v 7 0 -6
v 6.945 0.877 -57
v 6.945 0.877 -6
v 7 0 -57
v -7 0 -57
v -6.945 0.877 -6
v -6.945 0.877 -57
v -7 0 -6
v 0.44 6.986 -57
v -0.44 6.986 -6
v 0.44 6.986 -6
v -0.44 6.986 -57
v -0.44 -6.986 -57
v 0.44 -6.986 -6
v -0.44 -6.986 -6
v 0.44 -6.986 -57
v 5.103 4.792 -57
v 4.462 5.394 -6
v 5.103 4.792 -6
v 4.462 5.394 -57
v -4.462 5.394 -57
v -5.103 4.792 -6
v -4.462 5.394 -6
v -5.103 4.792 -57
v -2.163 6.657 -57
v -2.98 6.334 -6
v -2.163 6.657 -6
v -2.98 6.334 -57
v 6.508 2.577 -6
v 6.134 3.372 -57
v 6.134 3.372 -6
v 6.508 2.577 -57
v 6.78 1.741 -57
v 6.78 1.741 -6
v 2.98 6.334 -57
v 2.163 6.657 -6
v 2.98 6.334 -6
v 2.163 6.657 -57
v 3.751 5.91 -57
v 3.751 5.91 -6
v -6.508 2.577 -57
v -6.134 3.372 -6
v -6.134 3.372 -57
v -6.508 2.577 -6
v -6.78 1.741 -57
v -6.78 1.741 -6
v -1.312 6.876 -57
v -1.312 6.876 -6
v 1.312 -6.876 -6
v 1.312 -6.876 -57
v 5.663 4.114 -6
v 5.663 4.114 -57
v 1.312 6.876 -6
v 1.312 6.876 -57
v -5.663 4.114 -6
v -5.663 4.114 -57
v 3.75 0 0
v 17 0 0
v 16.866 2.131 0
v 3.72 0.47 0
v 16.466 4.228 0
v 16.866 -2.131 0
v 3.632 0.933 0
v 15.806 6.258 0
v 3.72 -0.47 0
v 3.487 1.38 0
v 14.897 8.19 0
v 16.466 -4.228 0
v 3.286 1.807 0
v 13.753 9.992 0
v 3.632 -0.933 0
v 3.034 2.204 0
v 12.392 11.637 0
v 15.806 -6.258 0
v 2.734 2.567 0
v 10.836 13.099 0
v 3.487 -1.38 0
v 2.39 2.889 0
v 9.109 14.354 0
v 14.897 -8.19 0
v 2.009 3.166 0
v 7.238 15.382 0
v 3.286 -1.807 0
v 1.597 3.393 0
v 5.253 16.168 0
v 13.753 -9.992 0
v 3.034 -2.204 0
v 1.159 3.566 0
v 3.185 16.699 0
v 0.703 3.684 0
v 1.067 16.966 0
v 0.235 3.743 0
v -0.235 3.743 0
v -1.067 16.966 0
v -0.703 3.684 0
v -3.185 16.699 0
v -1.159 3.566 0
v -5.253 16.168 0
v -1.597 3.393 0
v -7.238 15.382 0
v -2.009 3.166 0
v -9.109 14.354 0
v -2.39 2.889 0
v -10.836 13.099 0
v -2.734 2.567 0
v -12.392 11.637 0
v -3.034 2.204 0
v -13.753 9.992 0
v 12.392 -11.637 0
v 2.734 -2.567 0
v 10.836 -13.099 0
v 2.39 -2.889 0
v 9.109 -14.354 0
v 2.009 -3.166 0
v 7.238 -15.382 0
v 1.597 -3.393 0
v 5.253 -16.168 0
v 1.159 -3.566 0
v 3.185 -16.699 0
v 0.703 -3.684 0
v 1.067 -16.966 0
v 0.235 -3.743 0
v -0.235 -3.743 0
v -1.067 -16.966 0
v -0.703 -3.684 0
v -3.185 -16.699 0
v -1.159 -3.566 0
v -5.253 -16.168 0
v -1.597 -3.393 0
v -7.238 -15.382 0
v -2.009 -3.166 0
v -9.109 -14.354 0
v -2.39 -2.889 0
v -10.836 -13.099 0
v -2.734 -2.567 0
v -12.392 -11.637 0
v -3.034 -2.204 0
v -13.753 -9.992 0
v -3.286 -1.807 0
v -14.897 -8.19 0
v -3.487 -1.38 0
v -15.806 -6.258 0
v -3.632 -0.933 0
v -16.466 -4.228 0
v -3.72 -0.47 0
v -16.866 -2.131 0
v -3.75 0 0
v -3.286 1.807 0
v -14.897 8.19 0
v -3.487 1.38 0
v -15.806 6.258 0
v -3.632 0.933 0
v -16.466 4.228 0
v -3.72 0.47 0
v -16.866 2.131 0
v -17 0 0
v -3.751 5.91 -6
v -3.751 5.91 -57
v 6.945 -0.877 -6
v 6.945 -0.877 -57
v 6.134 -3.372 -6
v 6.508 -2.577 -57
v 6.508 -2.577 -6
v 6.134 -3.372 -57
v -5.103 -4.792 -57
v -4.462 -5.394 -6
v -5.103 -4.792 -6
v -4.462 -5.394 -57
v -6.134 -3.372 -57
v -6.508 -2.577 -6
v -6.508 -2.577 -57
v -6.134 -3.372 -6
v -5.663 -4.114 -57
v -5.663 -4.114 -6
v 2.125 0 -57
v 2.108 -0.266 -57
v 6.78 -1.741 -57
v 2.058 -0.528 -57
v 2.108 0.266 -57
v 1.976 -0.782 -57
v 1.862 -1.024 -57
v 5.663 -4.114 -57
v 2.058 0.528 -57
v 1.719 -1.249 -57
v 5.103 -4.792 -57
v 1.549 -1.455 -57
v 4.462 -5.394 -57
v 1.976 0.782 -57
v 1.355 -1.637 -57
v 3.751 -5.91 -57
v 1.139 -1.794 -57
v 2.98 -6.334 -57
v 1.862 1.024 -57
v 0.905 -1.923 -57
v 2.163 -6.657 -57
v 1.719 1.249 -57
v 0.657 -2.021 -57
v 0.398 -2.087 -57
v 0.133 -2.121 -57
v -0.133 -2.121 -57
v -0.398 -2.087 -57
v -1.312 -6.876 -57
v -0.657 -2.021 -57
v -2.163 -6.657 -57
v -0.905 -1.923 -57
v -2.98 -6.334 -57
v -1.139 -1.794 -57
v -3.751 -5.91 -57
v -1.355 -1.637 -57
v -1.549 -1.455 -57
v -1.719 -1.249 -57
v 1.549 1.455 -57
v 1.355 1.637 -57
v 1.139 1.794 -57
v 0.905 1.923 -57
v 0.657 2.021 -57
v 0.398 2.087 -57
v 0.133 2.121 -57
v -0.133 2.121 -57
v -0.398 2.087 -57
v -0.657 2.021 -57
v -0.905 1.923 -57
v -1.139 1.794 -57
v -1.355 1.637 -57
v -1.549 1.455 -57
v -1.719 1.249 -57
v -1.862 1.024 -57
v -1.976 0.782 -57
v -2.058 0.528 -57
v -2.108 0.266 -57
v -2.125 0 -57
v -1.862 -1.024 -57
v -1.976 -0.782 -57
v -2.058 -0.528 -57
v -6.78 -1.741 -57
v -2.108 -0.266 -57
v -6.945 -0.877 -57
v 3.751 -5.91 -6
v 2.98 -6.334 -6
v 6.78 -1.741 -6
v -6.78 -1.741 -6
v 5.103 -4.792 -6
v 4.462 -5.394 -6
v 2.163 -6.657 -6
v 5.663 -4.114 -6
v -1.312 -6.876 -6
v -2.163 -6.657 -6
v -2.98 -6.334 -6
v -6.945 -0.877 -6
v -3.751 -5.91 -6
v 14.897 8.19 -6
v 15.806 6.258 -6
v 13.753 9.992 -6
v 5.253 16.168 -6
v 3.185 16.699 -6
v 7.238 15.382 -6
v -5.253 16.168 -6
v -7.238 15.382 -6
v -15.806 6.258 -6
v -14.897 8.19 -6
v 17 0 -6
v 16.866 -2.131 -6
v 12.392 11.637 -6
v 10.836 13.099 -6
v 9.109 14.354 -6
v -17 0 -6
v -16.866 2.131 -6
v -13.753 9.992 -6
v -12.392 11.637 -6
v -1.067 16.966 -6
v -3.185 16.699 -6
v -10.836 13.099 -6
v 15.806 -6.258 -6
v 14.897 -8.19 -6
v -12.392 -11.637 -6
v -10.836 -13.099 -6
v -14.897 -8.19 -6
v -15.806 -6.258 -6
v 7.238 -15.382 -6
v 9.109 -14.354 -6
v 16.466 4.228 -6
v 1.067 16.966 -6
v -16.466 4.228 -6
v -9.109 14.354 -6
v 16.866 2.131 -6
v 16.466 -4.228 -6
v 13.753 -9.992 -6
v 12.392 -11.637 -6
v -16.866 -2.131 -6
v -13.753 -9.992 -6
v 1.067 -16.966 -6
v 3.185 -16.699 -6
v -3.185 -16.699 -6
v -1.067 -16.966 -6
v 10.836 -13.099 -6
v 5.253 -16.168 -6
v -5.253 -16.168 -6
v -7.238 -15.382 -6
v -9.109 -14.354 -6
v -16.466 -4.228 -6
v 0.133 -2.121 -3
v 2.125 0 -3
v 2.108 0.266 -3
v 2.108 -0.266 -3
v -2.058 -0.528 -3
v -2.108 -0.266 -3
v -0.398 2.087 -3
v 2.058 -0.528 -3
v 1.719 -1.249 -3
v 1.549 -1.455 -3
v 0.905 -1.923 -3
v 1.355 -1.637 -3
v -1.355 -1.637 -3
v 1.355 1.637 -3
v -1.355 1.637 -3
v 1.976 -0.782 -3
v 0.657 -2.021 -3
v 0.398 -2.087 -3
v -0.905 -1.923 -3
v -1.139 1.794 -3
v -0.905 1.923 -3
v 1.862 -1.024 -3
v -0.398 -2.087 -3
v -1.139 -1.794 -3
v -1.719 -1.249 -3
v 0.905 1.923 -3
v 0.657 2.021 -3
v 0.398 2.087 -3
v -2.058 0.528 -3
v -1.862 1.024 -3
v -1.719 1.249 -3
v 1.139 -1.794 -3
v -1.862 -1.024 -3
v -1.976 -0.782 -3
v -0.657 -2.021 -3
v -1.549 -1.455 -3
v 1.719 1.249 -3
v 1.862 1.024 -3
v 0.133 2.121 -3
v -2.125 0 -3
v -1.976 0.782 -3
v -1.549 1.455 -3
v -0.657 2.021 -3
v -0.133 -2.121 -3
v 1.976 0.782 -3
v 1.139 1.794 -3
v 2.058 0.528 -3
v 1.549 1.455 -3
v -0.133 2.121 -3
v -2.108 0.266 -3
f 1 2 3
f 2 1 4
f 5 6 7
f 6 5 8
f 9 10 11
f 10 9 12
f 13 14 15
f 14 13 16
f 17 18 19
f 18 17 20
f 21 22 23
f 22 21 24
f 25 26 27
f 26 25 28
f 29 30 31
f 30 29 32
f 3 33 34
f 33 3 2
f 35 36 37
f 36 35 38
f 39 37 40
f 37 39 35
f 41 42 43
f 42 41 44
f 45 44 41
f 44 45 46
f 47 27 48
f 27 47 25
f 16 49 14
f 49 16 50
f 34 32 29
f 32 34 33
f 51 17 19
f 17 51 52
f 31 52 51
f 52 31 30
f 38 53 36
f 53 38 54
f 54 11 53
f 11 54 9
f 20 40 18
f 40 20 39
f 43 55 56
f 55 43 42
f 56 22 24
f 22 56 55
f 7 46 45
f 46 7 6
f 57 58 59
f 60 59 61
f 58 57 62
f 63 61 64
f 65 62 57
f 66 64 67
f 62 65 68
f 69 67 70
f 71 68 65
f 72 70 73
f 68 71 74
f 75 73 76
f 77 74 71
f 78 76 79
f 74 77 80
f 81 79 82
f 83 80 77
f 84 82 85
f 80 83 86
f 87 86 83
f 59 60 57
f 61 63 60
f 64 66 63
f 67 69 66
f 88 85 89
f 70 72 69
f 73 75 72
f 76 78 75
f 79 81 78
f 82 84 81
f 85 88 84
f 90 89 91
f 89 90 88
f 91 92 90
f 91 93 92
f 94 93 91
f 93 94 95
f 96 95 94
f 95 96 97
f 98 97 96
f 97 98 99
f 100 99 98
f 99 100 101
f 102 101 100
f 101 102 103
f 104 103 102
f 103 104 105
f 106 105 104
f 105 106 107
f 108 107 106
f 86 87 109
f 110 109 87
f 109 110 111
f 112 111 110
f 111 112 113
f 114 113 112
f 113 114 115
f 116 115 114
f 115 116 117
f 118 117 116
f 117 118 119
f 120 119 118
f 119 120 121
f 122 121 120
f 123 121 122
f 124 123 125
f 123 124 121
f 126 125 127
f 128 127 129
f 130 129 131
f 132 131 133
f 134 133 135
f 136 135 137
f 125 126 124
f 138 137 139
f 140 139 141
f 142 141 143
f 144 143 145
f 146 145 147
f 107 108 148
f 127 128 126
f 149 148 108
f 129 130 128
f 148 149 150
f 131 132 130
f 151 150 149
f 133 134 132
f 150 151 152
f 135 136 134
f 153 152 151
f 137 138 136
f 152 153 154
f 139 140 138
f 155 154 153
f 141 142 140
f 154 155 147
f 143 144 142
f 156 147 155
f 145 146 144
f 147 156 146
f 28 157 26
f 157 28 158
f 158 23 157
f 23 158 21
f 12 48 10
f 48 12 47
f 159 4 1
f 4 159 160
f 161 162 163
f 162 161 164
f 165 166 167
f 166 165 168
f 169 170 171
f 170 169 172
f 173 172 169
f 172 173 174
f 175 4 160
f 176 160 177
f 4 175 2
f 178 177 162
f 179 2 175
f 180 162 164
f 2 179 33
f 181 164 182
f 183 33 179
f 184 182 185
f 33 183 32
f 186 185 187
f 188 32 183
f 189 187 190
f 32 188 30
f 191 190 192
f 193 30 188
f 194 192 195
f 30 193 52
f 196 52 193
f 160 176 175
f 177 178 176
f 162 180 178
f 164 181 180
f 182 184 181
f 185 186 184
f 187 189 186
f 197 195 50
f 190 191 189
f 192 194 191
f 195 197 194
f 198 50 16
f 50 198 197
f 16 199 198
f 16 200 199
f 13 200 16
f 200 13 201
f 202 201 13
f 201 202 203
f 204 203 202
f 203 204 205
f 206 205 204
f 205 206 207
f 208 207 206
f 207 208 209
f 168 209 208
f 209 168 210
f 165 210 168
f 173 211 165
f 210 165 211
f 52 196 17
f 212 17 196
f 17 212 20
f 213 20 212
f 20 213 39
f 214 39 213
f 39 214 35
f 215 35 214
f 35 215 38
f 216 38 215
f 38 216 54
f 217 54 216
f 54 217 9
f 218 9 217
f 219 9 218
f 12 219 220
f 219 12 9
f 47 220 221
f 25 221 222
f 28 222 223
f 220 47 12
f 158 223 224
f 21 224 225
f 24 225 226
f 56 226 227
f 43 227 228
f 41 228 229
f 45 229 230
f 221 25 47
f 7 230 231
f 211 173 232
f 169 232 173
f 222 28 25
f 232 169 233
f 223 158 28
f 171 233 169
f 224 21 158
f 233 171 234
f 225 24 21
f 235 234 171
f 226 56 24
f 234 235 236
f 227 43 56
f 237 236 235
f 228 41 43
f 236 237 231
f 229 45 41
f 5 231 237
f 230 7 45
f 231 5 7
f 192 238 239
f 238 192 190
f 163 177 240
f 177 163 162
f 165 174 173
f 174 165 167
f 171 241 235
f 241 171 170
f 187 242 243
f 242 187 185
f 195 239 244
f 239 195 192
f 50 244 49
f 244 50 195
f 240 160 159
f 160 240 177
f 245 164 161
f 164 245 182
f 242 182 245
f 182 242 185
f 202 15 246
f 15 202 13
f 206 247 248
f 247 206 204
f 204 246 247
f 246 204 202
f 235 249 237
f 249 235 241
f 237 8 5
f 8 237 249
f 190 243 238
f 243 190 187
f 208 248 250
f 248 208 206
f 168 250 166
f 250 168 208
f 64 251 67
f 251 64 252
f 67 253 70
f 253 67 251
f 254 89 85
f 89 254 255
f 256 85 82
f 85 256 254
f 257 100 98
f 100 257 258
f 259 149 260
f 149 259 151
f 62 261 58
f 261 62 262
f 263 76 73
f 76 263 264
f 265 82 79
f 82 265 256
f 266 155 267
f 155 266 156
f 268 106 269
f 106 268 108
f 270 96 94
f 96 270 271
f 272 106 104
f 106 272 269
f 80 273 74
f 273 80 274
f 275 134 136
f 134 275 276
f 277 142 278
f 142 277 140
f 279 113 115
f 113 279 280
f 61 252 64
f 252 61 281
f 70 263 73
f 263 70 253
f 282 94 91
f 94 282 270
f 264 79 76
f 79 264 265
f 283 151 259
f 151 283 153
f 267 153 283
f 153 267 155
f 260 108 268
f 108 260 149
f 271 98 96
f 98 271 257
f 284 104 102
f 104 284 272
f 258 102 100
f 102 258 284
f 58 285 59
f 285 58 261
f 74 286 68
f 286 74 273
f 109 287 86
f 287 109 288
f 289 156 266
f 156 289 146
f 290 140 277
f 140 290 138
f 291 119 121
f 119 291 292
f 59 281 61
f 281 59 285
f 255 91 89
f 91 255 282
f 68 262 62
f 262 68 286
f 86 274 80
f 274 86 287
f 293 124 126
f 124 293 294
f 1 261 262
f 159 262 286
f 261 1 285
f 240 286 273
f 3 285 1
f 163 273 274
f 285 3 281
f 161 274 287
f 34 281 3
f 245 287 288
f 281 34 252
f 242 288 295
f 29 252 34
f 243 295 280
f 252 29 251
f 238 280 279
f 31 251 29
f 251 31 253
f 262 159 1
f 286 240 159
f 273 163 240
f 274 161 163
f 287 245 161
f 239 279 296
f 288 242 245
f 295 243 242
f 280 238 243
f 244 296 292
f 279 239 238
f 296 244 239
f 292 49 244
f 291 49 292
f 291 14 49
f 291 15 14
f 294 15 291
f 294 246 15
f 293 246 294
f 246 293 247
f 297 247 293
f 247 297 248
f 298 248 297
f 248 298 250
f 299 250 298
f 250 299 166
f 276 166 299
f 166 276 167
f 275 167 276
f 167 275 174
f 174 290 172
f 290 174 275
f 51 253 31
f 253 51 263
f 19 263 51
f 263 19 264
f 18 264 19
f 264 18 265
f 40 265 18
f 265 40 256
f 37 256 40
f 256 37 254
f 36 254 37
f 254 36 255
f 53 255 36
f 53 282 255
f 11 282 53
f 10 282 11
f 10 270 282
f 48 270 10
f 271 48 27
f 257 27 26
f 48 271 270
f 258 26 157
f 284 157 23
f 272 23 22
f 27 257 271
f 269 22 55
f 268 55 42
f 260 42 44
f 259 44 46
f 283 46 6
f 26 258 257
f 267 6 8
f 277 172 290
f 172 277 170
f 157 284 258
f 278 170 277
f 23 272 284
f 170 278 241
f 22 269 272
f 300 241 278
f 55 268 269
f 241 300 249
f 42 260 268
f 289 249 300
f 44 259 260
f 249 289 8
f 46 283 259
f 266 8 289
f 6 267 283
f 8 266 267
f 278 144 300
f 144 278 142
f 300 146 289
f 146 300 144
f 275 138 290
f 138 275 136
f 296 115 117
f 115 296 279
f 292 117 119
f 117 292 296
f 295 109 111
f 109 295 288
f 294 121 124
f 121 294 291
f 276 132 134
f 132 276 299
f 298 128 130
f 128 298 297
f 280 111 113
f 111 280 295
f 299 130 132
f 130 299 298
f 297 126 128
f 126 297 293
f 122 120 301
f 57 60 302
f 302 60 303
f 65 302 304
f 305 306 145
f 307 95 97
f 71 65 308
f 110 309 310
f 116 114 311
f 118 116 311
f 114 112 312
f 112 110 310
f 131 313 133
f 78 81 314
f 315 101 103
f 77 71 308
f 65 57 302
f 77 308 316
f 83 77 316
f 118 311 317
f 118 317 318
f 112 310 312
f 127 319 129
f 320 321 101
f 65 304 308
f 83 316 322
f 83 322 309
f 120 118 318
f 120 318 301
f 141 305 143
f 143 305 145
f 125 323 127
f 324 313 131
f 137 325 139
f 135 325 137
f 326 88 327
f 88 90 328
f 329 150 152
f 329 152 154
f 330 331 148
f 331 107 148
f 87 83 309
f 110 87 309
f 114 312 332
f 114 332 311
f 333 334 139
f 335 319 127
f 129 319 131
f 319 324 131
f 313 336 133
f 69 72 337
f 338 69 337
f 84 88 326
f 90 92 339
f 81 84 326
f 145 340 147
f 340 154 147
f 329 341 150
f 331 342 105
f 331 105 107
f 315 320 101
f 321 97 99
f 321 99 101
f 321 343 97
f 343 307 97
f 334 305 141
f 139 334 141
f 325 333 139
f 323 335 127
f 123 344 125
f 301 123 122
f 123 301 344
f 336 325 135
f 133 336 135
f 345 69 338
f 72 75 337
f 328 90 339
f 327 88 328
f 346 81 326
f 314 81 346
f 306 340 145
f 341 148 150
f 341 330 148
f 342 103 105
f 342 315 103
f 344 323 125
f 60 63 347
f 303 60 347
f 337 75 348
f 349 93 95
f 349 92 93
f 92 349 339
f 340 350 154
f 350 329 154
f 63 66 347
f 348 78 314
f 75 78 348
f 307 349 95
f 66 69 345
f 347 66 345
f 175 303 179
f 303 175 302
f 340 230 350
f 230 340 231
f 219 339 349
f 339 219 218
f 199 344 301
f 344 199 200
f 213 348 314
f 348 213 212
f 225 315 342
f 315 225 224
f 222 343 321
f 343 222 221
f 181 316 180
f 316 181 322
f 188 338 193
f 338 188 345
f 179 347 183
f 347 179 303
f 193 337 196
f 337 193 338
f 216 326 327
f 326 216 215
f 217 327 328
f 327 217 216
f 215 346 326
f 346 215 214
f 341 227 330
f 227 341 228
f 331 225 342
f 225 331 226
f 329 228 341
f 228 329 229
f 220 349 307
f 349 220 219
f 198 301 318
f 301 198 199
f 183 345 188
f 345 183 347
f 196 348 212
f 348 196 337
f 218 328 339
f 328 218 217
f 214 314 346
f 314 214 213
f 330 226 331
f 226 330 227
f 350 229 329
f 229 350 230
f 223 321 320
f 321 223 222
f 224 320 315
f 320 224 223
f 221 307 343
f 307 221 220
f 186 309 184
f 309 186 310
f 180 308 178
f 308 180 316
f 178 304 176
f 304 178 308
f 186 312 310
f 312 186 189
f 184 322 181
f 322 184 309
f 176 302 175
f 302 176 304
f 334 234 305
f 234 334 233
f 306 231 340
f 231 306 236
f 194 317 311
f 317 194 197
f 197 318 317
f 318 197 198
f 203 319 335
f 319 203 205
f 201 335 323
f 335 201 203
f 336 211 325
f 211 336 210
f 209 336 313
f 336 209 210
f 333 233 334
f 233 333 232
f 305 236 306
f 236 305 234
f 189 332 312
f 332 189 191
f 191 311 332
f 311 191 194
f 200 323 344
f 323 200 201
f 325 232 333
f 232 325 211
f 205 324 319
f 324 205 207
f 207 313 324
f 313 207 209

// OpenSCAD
$fn = 50;


difference() {
	union() {
		translate(v = [0, 0, -57.0000000000]) {
			cylinder(h = 57, r = 7.0000000000);
		}
		translate(v = [0, 0, -6.0000000000]) {
			cylinder(h = 6, r = 17.0000000000);
		}
	}
	union() {
		translate(v = [0, 0, 0]) {
			rotate(a = [0, 0, 0]) {
				difference() {
					union() {
						#translate(v = [0, 0, -57.0000000000]) {
							cylinder(h = 57, r = 2.0000000000);
						}
						#translate(v = [0, 0, -3]) {
							cylinder(h = 3, r = 7.0000000000, r1 = 2.1250000000, r2 = 3.7500000000);
						}
						#translate(v = [0, 0, -57.0000000000]) {
							cylinder(h = 57, r = 2.1250000000);
						}
						#translate(v = [0, 0, -57.0000000000]) {
							cylinder(h = 57, r = 2.0000000000);
						}
					}
					union();
				}
			}
		}
	}
}
